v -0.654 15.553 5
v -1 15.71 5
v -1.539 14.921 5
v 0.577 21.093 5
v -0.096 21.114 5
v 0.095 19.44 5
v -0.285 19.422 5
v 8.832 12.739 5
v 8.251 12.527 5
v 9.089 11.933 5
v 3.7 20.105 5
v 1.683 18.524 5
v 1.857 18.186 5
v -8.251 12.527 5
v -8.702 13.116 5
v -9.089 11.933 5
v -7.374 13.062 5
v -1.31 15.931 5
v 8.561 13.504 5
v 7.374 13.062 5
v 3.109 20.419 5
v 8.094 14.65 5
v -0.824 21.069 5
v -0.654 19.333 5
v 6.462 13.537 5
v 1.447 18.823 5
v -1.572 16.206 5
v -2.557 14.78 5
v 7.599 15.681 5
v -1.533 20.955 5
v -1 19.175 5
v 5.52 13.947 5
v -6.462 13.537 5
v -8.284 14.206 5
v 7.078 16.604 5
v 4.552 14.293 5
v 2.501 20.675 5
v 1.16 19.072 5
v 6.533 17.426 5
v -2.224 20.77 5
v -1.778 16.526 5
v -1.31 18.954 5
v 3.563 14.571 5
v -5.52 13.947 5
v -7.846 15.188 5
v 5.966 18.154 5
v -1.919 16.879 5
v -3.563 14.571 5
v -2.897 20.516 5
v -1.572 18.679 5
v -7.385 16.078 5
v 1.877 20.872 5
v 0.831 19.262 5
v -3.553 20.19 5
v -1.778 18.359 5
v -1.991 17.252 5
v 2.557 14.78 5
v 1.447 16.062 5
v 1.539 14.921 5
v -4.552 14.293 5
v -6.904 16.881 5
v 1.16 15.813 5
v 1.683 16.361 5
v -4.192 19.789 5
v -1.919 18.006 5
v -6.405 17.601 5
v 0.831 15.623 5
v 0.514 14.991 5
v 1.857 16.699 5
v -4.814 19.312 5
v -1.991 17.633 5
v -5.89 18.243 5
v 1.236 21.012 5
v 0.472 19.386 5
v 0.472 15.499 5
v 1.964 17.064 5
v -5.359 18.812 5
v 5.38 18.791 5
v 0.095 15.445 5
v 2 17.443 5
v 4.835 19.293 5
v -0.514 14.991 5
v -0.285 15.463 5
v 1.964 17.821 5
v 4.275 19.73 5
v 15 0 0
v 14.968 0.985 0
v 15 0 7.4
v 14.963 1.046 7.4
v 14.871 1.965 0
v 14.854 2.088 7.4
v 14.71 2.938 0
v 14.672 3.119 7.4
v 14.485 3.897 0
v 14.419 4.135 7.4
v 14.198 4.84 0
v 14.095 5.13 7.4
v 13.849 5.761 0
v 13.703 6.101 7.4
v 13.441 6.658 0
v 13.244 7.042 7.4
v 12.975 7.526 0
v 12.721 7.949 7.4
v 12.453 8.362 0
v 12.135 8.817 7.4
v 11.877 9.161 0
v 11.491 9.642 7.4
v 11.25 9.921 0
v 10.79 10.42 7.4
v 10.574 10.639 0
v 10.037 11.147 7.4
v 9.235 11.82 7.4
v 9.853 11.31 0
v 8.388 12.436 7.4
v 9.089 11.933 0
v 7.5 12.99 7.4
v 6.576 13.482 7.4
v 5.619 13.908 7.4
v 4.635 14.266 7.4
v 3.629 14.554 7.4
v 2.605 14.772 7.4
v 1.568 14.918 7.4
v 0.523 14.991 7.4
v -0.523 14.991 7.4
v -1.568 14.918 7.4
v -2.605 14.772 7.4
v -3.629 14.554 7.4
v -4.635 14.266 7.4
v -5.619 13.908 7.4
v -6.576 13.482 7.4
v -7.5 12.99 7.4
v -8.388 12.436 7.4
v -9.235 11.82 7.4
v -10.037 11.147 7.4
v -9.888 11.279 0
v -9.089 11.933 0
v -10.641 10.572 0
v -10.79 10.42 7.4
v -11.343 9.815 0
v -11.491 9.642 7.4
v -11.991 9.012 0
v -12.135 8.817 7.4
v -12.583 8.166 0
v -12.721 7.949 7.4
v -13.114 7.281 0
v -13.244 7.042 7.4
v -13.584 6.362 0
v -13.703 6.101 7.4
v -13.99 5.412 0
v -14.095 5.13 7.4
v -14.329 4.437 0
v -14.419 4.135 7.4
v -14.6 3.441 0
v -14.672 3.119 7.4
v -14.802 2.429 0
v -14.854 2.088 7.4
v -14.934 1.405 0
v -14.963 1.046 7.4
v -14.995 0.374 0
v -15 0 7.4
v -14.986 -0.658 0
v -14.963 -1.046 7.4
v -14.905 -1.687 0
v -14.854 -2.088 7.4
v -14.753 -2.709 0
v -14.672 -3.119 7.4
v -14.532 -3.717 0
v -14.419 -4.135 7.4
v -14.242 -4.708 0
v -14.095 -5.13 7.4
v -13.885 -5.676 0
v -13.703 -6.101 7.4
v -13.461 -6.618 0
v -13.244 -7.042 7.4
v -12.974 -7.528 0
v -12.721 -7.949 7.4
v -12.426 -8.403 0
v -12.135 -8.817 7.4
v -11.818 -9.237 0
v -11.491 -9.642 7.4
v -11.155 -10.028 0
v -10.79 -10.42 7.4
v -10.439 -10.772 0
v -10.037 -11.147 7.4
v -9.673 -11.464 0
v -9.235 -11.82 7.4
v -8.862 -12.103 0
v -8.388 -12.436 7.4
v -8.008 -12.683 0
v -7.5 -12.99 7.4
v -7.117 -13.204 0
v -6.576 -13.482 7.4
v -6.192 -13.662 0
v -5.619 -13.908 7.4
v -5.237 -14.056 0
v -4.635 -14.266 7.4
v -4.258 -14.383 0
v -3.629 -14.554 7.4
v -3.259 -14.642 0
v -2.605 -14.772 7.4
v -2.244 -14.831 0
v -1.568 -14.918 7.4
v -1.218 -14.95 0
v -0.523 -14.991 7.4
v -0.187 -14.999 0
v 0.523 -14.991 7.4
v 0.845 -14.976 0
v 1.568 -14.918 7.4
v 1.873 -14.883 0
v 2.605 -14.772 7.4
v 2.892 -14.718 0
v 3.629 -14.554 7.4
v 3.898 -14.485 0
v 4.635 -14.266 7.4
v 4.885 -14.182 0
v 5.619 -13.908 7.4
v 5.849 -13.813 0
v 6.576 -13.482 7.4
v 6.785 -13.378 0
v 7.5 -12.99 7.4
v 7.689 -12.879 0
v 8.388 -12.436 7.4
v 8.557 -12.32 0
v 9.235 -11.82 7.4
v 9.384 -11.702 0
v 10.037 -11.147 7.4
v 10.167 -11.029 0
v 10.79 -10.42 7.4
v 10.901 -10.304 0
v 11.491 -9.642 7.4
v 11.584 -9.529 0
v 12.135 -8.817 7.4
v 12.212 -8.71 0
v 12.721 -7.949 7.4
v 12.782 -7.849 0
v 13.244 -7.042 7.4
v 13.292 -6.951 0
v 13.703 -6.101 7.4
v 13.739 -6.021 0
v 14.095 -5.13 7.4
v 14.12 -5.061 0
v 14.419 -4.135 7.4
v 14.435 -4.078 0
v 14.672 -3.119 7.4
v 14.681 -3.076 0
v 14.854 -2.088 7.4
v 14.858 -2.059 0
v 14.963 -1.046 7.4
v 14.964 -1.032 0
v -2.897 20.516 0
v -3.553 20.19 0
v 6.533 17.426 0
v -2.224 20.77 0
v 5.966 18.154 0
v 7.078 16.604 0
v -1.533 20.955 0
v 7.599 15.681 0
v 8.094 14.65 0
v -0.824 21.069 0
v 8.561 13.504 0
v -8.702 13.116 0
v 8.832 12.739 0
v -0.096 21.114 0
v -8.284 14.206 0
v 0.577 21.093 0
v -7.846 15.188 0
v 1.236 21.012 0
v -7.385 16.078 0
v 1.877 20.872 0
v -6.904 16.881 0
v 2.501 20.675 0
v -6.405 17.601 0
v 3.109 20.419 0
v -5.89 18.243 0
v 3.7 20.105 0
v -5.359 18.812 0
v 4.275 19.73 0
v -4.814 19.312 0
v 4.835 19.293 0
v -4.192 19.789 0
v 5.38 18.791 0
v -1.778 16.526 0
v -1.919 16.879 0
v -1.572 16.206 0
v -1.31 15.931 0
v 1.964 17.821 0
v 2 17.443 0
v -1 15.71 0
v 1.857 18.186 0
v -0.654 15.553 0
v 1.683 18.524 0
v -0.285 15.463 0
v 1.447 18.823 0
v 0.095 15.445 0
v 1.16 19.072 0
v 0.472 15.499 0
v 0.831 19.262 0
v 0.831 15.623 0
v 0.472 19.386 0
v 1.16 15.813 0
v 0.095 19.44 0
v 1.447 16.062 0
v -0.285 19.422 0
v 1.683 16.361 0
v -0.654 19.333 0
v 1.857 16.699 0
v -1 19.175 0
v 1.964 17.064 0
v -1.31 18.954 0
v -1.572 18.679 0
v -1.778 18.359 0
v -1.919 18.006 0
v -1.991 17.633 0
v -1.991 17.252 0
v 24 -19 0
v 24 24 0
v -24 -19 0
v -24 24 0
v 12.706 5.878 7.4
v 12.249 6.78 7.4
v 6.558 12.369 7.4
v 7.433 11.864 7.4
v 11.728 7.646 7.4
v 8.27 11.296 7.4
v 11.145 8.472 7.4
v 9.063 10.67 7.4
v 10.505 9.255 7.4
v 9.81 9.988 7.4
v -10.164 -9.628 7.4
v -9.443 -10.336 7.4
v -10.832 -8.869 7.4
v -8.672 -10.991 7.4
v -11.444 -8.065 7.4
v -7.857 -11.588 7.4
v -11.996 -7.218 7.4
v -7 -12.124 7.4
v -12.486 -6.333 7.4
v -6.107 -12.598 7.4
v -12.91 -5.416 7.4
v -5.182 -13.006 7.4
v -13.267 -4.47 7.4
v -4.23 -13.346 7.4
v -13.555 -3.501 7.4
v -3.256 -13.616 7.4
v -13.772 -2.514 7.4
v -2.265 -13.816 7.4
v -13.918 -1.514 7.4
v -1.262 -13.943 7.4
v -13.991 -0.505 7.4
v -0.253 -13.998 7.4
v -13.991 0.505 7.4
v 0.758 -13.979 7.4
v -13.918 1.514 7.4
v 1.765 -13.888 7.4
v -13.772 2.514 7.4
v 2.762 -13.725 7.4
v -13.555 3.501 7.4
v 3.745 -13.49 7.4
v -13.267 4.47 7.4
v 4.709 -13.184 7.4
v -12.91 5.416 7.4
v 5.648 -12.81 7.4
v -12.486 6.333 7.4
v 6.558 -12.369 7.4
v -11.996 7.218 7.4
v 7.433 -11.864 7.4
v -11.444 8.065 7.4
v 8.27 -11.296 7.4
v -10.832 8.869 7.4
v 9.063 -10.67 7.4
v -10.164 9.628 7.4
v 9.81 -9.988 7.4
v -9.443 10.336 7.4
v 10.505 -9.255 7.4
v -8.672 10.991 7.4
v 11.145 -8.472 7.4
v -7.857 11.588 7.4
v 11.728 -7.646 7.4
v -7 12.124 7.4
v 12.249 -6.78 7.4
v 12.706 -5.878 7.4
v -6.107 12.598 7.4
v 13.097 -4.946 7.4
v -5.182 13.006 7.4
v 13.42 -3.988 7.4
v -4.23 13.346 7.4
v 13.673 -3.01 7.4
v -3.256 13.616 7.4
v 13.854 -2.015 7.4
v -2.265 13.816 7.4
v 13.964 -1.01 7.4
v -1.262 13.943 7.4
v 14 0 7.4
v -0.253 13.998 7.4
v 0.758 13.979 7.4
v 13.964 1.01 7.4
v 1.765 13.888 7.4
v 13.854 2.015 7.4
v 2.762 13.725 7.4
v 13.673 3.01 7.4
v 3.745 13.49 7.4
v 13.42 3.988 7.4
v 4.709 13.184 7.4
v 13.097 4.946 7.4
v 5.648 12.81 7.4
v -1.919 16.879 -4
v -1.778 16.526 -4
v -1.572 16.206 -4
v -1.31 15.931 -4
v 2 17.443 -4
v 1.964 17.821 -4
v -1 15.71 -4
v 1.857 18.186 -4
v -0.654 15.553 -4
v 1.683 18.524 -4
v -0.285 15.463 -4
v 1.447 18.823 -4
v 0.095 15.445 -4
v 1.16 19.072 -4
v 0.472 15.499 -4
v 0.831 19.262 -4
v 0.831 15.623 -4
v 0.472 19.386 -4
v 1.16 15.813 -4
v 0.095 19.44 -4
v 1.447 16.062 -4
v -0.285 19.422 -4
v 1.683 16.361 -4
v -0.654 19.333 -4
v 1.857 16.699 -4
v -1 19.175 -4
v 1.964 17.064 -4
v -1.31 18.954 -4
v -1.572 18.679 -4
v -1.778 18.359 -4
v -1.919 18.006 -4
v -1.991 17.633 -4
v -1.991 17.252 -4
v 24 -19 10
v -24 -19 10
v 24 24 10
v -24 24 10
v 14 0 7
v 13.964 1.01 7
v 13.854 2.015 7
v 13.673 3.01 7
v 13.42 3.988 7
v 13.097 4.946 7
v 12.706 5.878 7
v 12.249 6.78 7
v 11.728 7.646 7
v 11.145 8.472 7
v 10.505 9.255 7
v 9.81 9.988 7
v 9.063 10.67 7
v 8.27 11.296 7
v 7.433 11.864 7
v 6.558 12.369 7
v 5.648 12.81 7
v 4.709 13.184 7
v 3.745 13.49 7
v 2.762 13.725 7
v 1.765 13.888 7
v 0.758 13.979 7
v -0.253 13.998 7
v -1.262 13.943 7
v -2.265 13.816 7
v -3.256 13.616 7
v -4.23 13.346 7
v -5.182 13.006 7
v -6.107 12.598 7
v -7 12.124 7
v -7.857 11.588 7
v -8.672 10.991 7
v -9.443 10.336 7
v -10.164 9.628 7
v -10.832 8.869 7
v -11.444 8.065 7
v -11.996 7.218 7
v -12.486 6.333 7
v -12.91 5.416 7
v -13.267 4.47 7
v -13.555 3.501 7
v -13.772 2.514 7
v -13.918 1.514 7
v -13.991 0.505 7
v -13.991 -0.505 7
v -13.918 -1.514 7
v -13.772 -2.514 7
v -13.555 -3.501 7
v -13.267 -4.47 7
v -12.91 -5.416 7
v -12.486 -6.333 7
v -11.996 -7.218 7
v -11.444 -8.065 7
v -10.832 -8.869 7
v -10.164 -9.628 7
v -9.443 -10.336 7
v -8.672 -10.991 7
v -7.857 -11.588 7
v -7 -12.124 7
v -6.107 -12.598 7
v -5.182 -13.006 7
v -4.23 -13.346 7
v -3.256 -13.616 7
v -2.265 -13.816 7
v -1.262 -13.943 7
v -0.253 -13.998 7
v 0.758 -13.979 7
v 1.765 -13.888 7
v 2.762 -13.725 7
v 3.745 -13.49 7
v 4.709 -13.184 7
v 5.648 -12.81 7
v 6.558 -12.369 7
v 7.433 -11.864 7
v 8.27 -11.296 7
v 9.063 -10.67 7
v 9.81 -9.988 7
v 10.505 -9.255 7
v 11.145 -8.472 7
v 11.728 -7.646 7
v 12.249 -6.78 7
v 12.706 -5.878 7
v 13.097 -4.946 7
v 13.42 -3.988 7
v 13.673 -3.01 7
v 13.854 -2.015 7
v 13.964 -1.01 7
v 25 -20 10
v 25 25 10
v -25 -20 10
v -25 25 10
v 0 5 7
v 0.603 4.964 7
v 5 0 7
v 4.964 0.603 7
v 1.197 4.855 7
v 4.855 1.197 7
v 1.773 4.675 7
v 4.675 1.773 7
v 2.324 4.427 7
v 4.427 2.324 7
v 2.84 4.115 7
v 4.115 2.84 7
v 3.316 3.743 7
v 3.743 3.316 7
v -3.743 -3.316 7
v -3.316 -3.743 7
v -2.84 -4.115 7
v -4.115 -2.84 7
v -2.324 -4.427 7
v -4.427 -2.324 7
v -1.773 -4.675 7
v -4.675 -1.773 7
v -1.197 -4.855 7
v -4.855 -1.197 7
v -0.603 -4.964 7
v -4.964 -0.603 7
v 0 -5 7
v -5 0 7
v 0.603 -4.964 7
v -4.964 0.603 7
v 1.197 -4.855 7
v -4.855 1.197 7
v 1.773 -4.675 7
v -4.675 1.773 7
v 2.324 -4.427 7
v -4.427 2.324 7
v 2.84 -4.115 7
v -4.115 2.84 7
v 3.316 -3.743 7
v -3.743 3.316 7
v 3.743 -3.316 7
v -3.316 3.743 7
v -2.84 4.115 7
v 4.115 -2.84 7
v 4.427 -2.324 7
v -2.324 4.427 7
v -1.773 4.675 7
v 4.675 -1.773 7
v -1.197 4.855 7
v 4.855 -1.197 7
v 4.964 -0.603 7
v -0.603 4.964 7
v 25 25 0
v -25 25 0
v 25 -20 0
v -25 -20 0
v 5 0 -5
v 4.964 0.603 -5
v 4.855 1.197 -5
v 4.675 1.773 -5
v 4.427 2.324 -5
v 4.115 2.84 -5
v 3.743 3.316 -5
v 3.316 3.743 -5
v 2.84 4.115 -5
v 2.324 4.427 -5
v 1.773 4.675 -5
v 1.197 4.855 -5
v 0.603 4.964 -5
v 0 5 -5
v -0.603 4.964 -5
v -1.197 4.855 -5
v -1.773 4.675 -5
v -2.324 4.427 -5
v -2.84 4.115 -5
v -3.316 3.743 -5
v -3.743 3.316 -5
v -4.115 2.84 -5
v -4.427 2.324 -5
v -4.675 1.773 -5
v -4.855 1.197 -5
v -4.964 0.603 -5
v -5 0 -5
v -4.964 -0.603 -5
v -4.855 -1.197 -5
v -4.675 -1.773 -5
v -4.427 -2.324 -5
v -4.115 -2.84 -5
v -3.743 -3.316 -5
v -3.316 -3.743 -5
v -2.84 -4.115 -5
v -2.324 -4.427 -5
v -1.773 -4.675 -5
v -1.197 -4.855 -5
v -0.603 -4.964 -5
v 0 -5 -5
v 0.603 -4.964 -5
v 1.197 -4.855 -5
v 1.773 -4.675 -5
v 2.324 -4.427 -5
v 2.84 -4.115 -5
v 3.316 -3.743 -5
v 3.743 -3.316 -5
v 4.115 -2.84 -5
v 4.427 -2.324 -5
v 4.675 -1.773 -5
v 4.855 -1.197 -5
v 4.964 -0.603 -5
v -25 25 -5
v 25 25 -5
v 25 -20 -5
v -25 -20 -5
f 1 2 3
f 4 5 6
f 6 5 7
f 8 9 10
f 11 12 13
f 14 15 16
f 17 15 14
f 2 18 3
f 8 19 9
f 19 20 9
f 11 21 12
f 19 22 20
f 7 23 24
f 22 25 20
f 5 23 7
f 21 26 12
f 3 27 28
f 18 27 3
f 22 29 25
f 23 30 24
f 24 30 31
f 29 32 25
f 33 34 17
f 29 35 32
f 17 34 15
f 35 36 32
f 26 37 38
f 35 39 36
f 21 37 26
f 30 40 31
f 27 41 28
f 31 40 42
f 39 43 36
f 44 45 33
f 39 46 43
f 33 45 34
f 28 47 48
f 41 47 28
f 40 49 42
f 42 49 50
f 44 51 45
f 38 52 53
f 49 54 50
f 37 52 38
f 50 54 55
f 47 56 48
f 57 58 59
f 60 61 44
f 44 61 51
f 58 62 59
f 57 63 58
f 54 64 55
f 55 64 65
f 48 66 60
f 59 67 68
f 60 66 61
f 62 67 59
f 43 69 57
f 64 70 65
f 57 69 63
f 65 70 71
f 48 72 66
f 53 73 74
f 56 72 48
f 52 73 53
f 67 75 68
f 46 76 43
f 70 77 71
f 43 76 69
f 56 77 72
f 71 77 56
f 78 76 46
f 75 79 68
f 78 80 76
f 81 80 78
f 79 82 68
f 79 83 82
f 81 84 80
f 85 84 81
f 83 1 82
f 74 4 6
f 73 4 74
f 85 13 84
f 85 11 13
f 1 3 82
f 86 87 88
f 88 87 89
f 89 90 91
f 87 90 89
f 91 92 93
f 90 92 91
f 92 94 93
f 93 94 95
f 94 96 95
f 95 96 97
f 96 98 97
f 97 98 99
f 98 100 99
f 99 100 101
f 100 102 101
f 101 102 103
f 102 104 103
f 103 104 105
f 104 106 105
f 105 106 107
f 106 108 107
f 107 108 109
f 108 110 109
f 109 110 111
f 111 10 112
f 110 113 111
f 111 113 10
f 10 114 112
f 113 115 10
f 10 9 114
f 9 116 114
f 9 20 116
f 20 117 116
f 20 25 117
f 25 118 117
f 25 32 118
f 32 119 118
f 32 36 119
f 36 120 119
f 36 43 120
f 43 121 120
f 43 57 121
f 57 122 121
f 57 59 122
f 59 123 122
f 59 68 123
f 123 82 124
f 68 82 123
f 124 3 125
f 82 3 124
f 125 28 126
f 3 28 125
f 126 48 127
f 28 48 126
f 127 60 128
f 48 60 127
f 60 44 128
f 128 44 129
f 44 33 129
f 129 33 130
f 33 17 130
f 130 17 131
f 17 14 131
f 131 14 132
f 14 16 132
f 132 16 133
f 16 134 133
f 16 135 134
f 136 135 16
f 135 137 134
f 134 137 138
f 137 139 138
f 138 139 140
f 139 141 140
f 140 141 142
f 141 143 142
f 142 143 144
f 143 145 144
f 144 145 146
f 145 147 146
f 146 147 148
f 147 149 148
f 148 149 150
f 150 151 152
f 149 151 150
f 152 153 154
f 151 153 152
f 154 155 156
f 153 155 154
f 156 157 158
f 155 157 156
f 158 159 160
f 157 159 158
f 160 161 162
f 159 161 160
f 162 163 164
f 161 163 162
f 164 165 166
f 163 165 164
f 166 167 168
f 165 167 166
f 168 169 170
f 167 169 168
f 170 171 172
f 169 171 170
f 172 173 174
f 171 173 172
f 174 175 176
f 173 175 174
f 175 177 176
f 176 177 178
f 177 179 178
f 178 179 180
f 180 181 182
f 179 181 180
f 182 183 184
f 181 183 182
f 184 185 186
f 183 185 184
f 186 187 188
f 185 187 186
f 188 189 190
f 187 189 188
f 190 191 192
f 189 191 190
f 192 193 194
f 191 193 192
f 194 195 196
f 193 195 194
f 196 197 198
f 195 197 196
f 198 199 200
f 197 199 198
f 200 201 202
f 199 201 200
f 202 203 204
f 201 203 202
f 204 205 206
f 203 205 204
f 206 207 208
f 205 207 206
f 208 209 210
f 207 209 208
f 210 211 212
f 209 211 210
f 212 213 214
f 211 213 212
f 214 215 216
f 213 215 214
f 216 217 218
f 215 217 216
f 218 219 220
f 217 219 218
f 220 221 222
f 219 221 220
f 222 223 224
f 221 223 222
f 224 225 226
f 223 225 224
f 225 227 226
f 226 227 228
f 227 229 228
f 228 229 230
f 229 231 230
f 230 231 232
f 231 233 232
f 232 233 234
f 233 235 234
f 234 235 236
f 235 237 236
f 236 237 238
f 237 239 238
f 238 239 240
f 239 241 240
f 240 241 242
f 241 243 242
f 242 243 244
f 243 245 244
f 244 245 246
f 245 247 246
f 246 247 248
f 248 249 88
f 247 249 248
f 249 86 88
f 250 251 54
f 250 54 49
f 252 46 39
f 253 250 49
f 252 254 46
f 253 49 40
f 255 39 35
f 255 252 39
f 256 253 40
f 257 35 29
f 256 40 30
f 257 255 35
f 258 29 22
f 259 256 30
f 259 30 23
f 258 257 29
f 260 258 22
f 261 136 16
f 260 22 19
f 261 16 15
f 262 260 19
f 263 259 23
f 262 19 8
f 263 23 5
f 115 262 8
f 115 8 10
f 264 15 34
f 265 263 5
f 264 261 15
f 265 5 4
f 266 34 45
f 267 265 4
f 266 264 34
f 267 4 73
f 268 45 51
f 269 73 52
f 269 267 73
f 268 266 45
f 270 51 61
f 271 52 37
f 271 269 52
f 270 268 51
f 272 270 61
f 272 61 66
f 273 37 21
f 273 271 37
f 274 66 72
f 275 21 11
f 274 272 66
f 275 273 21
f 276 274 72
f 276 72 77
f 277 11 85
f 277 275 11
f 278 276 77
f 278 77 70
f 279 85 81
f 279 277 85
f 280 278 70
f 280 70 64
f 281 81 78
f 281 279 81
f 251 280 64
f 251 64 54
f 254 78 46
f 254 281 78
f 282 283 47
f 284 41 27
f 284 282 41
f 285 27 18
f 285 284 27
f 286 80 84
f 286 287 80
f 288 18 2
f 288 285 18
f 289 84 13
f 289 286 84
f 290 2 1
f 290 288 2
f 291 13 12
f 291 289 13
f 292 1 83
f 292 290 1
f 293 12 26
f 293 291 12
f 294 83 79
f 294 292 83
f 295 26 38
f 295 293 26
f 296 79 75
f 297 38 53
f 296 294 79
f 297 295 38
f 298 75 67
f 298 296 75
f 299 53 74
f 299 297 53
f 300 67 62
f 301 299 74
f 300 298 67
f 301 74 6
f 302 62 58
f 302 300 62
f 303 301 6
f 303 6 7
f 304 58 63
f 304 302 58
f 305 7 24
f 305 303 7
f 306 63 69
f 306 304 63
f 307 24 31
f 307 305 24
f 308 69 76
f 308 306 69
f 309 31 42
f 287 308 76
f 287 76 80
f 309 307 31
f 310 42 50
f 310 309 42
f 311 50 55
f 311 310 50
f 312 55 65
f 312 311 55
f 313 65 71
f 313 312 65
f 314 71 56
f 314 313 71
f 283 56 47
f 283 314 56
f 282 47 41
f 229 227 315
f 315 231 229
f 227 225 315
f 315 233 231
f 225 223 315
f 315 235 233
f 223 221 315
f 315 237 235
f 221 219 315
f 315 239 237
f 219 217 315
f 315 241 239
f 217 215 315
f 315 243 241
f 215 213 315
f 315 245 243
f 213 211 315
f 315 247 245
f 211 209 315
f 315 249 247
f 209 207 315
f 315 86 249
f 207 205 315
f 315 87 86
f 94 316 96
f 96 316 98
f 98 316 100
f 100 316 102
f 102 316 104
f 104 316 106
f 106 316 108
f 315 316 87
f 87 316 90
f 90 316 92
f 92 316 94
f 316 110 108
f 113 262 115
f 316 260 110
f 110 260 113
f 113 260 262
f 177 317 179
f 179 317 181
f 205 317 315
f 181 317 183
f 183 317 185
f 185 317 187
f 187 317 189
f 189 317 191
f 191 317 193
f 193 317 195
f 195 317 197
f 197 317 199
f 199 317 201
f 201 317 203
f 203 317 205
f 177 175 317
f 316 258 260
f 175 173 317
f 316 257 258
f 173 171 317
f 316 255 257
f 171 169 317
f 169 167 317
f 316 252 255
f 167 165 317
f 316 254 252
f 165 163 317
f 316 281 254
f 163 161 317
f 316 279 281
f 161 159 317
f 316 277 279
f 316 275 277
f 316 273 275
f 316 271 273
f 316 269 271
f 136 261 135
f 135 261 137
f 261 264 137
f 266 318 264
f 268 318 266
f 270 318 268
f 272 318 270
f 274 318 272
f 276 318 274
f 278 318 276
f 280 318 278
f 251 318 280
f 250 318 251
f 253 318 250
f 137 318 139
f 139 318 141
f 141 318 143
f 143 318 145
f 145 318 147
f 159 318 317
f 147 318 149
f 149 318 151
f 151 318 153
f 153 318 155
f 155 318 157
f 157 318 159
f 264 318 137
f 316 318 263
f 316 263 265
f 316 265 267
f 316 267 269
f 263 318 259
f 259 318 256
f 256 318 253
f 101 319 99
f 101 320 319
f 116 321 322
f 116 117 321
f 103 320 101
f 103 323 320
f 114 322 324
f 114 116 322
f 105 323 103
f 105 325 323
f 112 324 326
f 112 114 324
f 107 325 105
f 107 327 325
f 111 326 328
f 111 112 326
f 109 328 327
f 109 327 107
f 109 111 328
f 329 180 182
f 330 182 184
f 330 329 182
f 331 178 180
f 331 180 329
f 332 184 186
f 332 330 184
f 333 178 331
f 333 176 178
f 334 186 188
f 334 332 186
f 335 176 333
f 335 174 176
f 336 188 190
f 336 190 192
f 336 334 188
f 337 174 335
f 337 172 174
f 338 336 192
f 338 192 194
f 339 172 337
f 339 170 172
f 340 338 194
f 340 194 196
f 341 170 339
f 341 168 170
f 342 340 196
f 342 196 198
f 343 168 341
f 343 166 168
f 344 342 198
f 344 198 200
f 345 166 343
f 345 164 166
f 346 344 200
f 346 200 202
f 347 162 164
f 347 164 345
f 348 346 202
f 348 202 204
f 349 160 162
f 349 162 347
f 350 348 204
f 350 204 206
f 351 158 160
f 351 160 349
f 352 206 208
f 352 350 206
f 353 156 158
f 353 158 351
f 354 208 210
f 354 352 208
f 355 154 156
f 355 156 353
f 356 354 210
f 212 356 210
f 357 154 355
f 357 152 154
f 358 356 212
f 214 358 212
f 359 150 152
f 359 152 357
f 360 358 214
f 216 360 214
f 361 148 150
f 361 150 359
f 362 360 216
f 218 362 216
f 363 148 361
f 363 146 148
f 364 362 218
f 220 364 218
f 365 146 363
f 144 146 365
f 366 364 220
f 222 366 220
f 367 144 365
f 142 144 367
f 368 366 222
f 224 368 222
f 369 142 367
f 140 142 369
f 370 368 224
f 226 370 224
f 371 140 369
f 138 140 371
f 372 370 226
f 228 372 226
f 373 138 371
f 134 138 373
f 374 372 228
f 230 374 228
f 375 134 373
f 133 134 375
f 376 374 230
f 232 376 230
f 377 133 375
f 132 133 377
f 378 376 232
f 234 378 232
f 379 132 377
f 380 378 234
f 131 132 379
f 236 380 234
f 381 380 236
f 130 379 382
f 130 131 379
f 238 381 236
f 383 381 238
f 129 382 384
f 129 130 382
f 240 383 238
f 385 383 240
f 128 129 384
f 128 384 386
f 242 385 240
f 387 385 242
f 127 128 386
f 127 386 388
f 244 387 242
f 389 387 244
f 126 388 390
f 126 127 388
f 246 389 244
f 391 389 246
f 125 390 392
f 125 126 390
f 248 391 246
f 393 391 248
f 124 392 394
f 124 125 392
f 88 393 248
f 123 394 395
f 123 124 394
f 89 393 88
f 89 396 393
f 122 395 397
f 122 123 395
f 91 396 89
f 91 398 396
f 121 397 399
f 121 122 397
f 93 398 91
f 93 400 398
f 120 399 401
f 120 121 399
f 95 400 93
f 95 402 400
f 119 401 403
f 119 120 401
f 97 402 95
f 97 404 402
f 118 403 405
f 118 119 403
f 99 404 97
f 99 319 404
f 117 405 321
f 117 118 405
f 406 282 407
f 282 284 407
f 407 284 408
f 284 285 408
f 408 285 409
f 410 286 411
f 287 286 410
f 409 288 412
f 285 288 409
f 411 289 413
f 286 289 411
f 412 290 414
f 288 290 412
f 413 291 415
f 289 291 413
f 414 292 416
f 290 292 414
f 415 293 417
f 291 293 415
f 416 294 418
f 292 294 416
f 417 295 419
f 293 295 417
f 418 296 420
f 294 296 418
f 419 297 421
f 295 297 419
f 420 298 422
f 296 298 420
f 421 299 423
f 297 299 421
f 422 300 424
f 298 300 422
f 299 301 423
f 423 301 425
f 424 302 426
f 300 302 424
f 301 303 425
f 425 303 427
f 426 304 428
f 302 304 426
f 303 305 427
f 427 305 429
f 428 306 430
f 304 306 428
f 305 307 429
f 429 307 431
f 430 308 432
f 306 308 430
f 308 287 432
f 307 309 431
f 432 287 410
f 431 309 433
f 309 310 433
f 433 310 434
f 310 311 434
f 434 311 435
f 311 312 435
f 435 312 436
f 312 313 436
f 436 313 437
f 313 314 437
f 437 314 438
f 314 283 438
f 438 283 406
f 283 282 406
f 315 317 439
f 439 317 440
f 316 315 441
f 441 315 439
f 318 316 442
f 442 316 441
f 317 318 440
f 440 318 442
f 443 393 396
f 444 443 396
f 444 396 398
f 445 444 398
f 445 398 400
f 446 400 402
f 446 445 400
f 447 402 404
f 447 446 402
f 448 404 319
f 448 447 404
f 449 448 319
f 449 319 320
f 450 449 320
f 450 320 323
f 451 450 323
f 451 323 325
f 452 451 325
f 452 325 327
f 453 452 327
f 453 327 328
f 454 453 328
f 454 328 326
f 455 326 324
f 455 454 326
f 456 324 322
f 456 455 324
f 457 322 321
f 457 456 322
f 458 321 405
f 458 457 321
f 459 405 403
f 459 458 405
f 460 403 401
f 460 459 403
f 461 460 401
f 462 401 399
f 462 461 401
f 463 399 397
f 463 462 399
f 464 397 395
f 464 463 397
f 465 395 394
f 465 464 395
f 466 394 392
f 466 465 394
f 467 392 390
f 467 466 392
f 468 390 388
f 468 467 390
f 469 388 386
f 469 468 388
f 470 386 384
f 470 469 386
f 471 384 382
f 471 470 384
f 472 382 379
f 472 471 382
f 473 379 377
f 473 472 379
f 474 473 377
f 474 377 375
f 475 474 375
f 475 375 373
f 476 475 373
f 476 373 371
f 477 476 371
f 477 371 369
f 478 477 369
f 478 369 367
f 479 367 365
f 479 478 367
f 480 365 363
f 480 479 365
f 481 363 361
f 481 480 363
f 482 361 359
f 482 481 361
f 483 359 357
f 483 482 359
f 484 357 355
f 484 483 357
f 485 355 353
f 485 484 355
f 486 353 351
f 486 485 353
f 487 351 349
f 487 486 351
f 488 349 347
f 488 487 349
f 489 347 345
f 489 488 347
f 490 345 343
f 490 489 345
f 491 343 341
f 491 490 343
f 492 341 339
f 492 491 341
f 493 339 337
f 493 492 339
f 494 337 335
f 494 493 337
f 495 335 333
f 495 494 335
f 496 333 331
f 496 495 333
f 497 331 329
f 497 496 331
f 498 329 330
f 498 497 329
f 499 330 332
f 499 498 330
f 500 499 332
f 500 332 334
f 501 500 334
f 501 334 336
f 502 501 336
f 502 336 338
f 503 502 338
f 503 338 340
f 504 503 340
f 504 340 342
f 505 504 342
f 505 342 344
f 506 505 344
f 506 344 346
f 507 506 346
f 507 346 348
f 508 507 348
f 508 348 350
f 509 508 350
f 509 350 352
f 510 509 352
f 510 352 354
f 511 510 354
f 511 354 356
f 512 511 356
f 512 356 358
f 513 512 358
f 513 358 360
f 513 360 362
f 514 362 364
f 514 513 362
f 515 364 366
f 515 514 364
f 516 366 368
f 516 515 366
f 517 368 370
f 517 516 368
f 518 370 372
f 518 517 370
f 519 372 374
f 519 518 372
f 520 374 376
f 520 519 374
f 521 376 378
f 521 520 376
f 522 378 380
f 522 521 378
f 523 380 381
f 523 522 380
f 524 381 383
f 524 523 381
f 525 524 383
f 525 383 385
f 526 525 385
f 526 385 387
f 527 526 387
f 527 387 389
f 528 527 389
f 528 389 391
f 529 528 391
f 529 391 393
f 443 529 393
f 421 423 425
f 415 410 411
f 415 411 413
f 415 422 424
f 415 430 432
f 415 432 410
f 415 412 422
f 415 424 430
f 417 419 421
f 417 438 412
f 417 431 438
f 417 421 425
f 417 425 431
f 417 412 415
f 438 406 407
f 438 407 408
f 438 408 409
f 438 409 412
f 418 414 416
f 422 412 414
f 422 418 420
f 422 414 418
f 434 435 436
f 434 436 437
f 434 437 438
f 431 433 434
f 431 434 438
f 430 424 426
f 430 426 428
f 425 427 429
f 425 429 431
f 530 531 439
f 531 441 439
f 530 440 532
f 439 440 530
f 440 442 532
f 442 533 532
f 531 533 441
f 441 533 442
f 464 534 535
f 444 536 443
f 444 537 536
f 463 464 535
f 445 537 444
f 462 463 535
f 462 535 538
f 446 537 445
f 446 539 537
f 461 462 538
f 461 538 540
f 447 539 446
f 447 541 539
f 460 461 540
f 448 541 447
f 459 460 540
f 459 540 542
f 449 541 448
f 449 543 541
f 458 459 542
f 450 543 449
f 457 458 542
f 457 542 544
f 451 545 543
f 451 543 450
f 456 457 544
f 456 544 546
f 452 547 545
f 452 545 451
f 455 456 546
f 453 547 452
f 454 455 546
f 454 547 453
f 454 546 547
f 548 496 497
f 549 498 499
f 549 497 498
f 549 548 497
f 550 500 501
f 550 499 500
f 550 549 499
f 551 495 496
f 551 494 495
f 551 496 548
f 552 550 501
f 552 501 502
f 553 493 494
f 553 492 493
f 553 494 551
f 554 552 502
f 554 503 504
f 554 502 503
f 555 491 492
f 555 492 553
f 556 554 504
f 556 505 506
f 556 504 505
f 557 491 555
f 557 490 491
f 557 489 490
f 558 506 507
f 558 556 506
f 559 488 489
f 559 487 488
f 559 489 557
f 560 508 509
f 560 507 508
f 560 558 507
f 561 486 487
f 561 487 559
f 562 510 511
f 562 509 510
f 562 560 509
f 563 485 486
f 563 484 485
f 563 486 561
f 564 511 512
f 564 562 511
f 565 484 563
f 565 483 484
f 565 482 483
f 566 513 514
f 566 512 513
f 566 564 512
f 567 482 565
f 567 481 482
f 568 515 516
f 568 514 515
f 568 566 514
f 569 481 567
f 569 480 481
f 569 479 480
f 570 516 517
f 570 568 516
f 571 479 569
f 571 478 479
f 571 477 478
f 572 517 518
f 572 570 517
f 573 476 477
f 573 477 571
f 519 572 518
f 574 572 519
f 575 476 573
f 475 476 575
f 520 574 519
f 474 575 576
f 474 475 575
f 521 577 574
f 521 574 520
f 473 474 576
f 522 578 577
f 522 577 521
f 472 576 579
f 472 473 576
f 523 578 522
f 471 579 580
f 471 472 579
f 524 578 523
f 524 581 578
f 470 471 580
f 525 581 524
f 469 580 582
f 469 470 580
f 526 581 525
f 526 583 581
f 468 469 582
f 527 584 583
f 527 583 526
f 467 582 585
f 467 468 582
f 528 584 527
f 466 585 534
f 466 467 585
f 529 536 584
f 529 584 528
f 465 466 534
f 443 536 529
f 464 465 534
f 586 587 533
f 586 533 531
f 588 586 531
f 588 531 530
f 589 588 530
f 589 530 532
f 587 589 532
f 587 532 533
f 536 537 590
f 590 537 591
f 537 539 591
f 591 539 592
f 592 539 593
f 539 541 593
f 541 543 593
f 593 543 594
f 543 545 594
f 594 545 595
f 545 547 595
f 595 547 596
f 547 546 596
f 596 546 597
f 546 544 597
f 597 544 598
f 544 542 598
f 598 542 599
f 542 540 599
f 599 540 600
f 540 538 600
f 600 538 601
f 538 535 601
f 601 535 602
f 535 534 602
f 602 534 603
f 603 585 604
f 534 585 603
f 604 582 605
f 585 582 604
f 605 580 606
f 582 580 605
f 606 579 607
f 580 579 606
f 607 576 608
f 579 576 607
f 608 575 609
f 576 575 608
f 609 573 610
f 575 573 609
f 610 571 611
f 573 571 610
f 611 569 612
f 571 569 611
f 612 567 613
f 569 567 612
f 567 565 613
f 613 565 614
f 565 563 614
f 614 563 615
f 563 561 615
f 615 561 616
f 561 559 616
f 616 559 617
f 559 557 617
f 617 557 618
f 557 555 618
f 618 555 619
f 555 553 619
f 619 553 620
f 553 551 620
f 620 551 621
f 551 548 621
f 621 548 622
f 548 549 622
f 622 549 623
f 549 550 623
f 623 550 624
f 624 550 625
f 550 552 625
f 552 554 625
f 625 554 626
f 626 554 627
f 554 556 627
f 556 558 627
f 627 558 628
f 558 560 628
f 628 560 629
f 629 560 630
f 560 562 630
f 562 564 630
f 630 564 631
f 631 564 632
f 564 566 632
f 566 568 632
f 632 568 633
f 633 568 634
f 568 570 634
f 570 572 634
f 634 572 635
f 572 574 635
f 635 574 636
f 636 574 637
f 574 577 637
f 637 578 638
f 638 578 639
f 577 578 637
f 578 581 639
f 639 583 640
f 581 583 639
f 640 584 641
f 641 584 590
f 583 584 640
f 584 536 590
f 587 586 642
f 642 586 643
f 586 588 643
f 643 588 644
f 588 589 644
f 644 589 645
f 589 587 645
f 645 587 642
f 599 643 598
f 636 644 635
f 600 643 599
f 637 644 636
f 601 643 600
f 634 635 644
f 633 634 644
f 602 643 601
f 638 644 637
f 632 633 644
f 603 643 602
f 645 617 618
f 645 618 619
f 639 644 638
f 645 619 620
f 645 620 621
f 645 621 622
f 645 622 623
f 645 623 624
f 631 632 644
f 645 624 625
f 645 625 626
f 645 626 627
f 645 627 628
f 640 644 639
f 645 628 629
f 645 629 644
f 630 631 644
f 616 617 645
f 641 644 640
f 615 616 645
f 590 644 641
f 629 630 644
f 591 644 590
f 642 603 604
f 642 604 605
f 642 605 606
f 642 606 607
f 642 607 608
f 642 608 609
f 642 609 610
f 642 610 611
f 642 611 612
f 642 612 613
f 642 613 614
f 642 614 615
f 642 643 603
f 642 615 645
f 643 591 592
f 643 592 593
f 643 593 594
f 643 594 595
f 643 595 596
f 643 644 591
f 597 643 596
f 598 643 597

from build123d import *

# Parameters (mm, degrees)
SKETCH_R          = 15
PAD_DEPTH         = 7
SKETCH001_R       = 2
PAD001_DEPTH      = 5
SKETCH002_R       = 15
SKETCH002_R_2     = 14
PAD002_DEPTH      = 7.4
SKETCH003_W       = 50
SKETCH003_H       = 45
PAD003_DEPTH      = 5
SKETCH004_W       = 50
SKETCH004_H       = 45
SKETCH004_W_2     = 48
SKETCH004_H_2     = 43
PAD004_DEPTH      = 10
SKETCH005_R       = 5
POCKET_DEPTH      = 5.001
POCKET_DEPTH_BACK = -10.001
SKETCH006_R       = 2
POCKET001_DEPTH   = 4


with BuildPart() as part:
    # Sketch → Pad (new body)
    with BuildSketch(Plane.XY):
        Circle(SKETCH_R)
    extrude(amount=PAD_DEPTH)

    # Sketch001 → Pad001 (join)
    with BuildSketch(Plane.XY):
        with BuildLine():
            add(Edge.make_bspline(
                [(-9.089263, 11.932531), (-7.058013, 18.679317), (0, 23.549677), (7.058013, 18.679317), (9.089263, 11.932531)],
                knots=[0, 0, 0, 0, 0.5, 1, 1, 1, 1], degree=3))
            Line((9.089263, 11.932531), (-9.089263, 11.932531))
        make_face()
        with Locations((0, 17.442505)):
            Circle(SKETCH001_R, mode=Mode.SUBTRACT)
    extrude(amount=PAD001_DEPTH)

    # Sketch002 → Pad002 (join)
    with BuildSketch(Plane.XY):
        Circle(SKETCH002_R)
        Circle(SKETCH002_R_2, mode=Mode.SUBTRACT)
    extrude(amount=PAD002_DEPTH)

    # Sketch003 → Pad003 (join)
    with BuildSketch(Plane.XY):
        with Locations((0, 2.5)):
            Rectangle(SKETCH003_W, SKETCH003_H)
    extrude(amount=-PAD003_DEPTH)

    # Sketch004 → Pad004 (join)
    with BuildSketch(Plane.XY):
        with Locations((0, 2.5)):
            Rectangle(SKETCH004_W, SKETCH004_H)
        with Locations((0, 2.5)):
            Rectangle(SKETCH004_W_2, SKETCH004_H_2, mode=Mode.SUBTRACT)
    extrude(amount=PAD004_DEPTH)

    # Sketch005 → Pocket (cut, two sides)
    with BuildSketch(Plane.XY) as pocket_sk:
        Circle(SKETCH005_R)
    extrude(amount=-POCKET_DEPTH, mode=Mode.SUBTRACT)
    extrude(pocket_sk.sketch, amount=-POCKET_DEPTH_BACK, mode=Mode.SUBTRACT)

    # Sketch006 → Pocket001 (cut)
    with BuildSketch(Plane.XY):
        with Locations((0, 17.442505)):
            Circle(SKETCH006_R)
    extrude(amount=-POCKET001_DEPTH, mode=Mode.SUBTRACT)


solid = part.part
